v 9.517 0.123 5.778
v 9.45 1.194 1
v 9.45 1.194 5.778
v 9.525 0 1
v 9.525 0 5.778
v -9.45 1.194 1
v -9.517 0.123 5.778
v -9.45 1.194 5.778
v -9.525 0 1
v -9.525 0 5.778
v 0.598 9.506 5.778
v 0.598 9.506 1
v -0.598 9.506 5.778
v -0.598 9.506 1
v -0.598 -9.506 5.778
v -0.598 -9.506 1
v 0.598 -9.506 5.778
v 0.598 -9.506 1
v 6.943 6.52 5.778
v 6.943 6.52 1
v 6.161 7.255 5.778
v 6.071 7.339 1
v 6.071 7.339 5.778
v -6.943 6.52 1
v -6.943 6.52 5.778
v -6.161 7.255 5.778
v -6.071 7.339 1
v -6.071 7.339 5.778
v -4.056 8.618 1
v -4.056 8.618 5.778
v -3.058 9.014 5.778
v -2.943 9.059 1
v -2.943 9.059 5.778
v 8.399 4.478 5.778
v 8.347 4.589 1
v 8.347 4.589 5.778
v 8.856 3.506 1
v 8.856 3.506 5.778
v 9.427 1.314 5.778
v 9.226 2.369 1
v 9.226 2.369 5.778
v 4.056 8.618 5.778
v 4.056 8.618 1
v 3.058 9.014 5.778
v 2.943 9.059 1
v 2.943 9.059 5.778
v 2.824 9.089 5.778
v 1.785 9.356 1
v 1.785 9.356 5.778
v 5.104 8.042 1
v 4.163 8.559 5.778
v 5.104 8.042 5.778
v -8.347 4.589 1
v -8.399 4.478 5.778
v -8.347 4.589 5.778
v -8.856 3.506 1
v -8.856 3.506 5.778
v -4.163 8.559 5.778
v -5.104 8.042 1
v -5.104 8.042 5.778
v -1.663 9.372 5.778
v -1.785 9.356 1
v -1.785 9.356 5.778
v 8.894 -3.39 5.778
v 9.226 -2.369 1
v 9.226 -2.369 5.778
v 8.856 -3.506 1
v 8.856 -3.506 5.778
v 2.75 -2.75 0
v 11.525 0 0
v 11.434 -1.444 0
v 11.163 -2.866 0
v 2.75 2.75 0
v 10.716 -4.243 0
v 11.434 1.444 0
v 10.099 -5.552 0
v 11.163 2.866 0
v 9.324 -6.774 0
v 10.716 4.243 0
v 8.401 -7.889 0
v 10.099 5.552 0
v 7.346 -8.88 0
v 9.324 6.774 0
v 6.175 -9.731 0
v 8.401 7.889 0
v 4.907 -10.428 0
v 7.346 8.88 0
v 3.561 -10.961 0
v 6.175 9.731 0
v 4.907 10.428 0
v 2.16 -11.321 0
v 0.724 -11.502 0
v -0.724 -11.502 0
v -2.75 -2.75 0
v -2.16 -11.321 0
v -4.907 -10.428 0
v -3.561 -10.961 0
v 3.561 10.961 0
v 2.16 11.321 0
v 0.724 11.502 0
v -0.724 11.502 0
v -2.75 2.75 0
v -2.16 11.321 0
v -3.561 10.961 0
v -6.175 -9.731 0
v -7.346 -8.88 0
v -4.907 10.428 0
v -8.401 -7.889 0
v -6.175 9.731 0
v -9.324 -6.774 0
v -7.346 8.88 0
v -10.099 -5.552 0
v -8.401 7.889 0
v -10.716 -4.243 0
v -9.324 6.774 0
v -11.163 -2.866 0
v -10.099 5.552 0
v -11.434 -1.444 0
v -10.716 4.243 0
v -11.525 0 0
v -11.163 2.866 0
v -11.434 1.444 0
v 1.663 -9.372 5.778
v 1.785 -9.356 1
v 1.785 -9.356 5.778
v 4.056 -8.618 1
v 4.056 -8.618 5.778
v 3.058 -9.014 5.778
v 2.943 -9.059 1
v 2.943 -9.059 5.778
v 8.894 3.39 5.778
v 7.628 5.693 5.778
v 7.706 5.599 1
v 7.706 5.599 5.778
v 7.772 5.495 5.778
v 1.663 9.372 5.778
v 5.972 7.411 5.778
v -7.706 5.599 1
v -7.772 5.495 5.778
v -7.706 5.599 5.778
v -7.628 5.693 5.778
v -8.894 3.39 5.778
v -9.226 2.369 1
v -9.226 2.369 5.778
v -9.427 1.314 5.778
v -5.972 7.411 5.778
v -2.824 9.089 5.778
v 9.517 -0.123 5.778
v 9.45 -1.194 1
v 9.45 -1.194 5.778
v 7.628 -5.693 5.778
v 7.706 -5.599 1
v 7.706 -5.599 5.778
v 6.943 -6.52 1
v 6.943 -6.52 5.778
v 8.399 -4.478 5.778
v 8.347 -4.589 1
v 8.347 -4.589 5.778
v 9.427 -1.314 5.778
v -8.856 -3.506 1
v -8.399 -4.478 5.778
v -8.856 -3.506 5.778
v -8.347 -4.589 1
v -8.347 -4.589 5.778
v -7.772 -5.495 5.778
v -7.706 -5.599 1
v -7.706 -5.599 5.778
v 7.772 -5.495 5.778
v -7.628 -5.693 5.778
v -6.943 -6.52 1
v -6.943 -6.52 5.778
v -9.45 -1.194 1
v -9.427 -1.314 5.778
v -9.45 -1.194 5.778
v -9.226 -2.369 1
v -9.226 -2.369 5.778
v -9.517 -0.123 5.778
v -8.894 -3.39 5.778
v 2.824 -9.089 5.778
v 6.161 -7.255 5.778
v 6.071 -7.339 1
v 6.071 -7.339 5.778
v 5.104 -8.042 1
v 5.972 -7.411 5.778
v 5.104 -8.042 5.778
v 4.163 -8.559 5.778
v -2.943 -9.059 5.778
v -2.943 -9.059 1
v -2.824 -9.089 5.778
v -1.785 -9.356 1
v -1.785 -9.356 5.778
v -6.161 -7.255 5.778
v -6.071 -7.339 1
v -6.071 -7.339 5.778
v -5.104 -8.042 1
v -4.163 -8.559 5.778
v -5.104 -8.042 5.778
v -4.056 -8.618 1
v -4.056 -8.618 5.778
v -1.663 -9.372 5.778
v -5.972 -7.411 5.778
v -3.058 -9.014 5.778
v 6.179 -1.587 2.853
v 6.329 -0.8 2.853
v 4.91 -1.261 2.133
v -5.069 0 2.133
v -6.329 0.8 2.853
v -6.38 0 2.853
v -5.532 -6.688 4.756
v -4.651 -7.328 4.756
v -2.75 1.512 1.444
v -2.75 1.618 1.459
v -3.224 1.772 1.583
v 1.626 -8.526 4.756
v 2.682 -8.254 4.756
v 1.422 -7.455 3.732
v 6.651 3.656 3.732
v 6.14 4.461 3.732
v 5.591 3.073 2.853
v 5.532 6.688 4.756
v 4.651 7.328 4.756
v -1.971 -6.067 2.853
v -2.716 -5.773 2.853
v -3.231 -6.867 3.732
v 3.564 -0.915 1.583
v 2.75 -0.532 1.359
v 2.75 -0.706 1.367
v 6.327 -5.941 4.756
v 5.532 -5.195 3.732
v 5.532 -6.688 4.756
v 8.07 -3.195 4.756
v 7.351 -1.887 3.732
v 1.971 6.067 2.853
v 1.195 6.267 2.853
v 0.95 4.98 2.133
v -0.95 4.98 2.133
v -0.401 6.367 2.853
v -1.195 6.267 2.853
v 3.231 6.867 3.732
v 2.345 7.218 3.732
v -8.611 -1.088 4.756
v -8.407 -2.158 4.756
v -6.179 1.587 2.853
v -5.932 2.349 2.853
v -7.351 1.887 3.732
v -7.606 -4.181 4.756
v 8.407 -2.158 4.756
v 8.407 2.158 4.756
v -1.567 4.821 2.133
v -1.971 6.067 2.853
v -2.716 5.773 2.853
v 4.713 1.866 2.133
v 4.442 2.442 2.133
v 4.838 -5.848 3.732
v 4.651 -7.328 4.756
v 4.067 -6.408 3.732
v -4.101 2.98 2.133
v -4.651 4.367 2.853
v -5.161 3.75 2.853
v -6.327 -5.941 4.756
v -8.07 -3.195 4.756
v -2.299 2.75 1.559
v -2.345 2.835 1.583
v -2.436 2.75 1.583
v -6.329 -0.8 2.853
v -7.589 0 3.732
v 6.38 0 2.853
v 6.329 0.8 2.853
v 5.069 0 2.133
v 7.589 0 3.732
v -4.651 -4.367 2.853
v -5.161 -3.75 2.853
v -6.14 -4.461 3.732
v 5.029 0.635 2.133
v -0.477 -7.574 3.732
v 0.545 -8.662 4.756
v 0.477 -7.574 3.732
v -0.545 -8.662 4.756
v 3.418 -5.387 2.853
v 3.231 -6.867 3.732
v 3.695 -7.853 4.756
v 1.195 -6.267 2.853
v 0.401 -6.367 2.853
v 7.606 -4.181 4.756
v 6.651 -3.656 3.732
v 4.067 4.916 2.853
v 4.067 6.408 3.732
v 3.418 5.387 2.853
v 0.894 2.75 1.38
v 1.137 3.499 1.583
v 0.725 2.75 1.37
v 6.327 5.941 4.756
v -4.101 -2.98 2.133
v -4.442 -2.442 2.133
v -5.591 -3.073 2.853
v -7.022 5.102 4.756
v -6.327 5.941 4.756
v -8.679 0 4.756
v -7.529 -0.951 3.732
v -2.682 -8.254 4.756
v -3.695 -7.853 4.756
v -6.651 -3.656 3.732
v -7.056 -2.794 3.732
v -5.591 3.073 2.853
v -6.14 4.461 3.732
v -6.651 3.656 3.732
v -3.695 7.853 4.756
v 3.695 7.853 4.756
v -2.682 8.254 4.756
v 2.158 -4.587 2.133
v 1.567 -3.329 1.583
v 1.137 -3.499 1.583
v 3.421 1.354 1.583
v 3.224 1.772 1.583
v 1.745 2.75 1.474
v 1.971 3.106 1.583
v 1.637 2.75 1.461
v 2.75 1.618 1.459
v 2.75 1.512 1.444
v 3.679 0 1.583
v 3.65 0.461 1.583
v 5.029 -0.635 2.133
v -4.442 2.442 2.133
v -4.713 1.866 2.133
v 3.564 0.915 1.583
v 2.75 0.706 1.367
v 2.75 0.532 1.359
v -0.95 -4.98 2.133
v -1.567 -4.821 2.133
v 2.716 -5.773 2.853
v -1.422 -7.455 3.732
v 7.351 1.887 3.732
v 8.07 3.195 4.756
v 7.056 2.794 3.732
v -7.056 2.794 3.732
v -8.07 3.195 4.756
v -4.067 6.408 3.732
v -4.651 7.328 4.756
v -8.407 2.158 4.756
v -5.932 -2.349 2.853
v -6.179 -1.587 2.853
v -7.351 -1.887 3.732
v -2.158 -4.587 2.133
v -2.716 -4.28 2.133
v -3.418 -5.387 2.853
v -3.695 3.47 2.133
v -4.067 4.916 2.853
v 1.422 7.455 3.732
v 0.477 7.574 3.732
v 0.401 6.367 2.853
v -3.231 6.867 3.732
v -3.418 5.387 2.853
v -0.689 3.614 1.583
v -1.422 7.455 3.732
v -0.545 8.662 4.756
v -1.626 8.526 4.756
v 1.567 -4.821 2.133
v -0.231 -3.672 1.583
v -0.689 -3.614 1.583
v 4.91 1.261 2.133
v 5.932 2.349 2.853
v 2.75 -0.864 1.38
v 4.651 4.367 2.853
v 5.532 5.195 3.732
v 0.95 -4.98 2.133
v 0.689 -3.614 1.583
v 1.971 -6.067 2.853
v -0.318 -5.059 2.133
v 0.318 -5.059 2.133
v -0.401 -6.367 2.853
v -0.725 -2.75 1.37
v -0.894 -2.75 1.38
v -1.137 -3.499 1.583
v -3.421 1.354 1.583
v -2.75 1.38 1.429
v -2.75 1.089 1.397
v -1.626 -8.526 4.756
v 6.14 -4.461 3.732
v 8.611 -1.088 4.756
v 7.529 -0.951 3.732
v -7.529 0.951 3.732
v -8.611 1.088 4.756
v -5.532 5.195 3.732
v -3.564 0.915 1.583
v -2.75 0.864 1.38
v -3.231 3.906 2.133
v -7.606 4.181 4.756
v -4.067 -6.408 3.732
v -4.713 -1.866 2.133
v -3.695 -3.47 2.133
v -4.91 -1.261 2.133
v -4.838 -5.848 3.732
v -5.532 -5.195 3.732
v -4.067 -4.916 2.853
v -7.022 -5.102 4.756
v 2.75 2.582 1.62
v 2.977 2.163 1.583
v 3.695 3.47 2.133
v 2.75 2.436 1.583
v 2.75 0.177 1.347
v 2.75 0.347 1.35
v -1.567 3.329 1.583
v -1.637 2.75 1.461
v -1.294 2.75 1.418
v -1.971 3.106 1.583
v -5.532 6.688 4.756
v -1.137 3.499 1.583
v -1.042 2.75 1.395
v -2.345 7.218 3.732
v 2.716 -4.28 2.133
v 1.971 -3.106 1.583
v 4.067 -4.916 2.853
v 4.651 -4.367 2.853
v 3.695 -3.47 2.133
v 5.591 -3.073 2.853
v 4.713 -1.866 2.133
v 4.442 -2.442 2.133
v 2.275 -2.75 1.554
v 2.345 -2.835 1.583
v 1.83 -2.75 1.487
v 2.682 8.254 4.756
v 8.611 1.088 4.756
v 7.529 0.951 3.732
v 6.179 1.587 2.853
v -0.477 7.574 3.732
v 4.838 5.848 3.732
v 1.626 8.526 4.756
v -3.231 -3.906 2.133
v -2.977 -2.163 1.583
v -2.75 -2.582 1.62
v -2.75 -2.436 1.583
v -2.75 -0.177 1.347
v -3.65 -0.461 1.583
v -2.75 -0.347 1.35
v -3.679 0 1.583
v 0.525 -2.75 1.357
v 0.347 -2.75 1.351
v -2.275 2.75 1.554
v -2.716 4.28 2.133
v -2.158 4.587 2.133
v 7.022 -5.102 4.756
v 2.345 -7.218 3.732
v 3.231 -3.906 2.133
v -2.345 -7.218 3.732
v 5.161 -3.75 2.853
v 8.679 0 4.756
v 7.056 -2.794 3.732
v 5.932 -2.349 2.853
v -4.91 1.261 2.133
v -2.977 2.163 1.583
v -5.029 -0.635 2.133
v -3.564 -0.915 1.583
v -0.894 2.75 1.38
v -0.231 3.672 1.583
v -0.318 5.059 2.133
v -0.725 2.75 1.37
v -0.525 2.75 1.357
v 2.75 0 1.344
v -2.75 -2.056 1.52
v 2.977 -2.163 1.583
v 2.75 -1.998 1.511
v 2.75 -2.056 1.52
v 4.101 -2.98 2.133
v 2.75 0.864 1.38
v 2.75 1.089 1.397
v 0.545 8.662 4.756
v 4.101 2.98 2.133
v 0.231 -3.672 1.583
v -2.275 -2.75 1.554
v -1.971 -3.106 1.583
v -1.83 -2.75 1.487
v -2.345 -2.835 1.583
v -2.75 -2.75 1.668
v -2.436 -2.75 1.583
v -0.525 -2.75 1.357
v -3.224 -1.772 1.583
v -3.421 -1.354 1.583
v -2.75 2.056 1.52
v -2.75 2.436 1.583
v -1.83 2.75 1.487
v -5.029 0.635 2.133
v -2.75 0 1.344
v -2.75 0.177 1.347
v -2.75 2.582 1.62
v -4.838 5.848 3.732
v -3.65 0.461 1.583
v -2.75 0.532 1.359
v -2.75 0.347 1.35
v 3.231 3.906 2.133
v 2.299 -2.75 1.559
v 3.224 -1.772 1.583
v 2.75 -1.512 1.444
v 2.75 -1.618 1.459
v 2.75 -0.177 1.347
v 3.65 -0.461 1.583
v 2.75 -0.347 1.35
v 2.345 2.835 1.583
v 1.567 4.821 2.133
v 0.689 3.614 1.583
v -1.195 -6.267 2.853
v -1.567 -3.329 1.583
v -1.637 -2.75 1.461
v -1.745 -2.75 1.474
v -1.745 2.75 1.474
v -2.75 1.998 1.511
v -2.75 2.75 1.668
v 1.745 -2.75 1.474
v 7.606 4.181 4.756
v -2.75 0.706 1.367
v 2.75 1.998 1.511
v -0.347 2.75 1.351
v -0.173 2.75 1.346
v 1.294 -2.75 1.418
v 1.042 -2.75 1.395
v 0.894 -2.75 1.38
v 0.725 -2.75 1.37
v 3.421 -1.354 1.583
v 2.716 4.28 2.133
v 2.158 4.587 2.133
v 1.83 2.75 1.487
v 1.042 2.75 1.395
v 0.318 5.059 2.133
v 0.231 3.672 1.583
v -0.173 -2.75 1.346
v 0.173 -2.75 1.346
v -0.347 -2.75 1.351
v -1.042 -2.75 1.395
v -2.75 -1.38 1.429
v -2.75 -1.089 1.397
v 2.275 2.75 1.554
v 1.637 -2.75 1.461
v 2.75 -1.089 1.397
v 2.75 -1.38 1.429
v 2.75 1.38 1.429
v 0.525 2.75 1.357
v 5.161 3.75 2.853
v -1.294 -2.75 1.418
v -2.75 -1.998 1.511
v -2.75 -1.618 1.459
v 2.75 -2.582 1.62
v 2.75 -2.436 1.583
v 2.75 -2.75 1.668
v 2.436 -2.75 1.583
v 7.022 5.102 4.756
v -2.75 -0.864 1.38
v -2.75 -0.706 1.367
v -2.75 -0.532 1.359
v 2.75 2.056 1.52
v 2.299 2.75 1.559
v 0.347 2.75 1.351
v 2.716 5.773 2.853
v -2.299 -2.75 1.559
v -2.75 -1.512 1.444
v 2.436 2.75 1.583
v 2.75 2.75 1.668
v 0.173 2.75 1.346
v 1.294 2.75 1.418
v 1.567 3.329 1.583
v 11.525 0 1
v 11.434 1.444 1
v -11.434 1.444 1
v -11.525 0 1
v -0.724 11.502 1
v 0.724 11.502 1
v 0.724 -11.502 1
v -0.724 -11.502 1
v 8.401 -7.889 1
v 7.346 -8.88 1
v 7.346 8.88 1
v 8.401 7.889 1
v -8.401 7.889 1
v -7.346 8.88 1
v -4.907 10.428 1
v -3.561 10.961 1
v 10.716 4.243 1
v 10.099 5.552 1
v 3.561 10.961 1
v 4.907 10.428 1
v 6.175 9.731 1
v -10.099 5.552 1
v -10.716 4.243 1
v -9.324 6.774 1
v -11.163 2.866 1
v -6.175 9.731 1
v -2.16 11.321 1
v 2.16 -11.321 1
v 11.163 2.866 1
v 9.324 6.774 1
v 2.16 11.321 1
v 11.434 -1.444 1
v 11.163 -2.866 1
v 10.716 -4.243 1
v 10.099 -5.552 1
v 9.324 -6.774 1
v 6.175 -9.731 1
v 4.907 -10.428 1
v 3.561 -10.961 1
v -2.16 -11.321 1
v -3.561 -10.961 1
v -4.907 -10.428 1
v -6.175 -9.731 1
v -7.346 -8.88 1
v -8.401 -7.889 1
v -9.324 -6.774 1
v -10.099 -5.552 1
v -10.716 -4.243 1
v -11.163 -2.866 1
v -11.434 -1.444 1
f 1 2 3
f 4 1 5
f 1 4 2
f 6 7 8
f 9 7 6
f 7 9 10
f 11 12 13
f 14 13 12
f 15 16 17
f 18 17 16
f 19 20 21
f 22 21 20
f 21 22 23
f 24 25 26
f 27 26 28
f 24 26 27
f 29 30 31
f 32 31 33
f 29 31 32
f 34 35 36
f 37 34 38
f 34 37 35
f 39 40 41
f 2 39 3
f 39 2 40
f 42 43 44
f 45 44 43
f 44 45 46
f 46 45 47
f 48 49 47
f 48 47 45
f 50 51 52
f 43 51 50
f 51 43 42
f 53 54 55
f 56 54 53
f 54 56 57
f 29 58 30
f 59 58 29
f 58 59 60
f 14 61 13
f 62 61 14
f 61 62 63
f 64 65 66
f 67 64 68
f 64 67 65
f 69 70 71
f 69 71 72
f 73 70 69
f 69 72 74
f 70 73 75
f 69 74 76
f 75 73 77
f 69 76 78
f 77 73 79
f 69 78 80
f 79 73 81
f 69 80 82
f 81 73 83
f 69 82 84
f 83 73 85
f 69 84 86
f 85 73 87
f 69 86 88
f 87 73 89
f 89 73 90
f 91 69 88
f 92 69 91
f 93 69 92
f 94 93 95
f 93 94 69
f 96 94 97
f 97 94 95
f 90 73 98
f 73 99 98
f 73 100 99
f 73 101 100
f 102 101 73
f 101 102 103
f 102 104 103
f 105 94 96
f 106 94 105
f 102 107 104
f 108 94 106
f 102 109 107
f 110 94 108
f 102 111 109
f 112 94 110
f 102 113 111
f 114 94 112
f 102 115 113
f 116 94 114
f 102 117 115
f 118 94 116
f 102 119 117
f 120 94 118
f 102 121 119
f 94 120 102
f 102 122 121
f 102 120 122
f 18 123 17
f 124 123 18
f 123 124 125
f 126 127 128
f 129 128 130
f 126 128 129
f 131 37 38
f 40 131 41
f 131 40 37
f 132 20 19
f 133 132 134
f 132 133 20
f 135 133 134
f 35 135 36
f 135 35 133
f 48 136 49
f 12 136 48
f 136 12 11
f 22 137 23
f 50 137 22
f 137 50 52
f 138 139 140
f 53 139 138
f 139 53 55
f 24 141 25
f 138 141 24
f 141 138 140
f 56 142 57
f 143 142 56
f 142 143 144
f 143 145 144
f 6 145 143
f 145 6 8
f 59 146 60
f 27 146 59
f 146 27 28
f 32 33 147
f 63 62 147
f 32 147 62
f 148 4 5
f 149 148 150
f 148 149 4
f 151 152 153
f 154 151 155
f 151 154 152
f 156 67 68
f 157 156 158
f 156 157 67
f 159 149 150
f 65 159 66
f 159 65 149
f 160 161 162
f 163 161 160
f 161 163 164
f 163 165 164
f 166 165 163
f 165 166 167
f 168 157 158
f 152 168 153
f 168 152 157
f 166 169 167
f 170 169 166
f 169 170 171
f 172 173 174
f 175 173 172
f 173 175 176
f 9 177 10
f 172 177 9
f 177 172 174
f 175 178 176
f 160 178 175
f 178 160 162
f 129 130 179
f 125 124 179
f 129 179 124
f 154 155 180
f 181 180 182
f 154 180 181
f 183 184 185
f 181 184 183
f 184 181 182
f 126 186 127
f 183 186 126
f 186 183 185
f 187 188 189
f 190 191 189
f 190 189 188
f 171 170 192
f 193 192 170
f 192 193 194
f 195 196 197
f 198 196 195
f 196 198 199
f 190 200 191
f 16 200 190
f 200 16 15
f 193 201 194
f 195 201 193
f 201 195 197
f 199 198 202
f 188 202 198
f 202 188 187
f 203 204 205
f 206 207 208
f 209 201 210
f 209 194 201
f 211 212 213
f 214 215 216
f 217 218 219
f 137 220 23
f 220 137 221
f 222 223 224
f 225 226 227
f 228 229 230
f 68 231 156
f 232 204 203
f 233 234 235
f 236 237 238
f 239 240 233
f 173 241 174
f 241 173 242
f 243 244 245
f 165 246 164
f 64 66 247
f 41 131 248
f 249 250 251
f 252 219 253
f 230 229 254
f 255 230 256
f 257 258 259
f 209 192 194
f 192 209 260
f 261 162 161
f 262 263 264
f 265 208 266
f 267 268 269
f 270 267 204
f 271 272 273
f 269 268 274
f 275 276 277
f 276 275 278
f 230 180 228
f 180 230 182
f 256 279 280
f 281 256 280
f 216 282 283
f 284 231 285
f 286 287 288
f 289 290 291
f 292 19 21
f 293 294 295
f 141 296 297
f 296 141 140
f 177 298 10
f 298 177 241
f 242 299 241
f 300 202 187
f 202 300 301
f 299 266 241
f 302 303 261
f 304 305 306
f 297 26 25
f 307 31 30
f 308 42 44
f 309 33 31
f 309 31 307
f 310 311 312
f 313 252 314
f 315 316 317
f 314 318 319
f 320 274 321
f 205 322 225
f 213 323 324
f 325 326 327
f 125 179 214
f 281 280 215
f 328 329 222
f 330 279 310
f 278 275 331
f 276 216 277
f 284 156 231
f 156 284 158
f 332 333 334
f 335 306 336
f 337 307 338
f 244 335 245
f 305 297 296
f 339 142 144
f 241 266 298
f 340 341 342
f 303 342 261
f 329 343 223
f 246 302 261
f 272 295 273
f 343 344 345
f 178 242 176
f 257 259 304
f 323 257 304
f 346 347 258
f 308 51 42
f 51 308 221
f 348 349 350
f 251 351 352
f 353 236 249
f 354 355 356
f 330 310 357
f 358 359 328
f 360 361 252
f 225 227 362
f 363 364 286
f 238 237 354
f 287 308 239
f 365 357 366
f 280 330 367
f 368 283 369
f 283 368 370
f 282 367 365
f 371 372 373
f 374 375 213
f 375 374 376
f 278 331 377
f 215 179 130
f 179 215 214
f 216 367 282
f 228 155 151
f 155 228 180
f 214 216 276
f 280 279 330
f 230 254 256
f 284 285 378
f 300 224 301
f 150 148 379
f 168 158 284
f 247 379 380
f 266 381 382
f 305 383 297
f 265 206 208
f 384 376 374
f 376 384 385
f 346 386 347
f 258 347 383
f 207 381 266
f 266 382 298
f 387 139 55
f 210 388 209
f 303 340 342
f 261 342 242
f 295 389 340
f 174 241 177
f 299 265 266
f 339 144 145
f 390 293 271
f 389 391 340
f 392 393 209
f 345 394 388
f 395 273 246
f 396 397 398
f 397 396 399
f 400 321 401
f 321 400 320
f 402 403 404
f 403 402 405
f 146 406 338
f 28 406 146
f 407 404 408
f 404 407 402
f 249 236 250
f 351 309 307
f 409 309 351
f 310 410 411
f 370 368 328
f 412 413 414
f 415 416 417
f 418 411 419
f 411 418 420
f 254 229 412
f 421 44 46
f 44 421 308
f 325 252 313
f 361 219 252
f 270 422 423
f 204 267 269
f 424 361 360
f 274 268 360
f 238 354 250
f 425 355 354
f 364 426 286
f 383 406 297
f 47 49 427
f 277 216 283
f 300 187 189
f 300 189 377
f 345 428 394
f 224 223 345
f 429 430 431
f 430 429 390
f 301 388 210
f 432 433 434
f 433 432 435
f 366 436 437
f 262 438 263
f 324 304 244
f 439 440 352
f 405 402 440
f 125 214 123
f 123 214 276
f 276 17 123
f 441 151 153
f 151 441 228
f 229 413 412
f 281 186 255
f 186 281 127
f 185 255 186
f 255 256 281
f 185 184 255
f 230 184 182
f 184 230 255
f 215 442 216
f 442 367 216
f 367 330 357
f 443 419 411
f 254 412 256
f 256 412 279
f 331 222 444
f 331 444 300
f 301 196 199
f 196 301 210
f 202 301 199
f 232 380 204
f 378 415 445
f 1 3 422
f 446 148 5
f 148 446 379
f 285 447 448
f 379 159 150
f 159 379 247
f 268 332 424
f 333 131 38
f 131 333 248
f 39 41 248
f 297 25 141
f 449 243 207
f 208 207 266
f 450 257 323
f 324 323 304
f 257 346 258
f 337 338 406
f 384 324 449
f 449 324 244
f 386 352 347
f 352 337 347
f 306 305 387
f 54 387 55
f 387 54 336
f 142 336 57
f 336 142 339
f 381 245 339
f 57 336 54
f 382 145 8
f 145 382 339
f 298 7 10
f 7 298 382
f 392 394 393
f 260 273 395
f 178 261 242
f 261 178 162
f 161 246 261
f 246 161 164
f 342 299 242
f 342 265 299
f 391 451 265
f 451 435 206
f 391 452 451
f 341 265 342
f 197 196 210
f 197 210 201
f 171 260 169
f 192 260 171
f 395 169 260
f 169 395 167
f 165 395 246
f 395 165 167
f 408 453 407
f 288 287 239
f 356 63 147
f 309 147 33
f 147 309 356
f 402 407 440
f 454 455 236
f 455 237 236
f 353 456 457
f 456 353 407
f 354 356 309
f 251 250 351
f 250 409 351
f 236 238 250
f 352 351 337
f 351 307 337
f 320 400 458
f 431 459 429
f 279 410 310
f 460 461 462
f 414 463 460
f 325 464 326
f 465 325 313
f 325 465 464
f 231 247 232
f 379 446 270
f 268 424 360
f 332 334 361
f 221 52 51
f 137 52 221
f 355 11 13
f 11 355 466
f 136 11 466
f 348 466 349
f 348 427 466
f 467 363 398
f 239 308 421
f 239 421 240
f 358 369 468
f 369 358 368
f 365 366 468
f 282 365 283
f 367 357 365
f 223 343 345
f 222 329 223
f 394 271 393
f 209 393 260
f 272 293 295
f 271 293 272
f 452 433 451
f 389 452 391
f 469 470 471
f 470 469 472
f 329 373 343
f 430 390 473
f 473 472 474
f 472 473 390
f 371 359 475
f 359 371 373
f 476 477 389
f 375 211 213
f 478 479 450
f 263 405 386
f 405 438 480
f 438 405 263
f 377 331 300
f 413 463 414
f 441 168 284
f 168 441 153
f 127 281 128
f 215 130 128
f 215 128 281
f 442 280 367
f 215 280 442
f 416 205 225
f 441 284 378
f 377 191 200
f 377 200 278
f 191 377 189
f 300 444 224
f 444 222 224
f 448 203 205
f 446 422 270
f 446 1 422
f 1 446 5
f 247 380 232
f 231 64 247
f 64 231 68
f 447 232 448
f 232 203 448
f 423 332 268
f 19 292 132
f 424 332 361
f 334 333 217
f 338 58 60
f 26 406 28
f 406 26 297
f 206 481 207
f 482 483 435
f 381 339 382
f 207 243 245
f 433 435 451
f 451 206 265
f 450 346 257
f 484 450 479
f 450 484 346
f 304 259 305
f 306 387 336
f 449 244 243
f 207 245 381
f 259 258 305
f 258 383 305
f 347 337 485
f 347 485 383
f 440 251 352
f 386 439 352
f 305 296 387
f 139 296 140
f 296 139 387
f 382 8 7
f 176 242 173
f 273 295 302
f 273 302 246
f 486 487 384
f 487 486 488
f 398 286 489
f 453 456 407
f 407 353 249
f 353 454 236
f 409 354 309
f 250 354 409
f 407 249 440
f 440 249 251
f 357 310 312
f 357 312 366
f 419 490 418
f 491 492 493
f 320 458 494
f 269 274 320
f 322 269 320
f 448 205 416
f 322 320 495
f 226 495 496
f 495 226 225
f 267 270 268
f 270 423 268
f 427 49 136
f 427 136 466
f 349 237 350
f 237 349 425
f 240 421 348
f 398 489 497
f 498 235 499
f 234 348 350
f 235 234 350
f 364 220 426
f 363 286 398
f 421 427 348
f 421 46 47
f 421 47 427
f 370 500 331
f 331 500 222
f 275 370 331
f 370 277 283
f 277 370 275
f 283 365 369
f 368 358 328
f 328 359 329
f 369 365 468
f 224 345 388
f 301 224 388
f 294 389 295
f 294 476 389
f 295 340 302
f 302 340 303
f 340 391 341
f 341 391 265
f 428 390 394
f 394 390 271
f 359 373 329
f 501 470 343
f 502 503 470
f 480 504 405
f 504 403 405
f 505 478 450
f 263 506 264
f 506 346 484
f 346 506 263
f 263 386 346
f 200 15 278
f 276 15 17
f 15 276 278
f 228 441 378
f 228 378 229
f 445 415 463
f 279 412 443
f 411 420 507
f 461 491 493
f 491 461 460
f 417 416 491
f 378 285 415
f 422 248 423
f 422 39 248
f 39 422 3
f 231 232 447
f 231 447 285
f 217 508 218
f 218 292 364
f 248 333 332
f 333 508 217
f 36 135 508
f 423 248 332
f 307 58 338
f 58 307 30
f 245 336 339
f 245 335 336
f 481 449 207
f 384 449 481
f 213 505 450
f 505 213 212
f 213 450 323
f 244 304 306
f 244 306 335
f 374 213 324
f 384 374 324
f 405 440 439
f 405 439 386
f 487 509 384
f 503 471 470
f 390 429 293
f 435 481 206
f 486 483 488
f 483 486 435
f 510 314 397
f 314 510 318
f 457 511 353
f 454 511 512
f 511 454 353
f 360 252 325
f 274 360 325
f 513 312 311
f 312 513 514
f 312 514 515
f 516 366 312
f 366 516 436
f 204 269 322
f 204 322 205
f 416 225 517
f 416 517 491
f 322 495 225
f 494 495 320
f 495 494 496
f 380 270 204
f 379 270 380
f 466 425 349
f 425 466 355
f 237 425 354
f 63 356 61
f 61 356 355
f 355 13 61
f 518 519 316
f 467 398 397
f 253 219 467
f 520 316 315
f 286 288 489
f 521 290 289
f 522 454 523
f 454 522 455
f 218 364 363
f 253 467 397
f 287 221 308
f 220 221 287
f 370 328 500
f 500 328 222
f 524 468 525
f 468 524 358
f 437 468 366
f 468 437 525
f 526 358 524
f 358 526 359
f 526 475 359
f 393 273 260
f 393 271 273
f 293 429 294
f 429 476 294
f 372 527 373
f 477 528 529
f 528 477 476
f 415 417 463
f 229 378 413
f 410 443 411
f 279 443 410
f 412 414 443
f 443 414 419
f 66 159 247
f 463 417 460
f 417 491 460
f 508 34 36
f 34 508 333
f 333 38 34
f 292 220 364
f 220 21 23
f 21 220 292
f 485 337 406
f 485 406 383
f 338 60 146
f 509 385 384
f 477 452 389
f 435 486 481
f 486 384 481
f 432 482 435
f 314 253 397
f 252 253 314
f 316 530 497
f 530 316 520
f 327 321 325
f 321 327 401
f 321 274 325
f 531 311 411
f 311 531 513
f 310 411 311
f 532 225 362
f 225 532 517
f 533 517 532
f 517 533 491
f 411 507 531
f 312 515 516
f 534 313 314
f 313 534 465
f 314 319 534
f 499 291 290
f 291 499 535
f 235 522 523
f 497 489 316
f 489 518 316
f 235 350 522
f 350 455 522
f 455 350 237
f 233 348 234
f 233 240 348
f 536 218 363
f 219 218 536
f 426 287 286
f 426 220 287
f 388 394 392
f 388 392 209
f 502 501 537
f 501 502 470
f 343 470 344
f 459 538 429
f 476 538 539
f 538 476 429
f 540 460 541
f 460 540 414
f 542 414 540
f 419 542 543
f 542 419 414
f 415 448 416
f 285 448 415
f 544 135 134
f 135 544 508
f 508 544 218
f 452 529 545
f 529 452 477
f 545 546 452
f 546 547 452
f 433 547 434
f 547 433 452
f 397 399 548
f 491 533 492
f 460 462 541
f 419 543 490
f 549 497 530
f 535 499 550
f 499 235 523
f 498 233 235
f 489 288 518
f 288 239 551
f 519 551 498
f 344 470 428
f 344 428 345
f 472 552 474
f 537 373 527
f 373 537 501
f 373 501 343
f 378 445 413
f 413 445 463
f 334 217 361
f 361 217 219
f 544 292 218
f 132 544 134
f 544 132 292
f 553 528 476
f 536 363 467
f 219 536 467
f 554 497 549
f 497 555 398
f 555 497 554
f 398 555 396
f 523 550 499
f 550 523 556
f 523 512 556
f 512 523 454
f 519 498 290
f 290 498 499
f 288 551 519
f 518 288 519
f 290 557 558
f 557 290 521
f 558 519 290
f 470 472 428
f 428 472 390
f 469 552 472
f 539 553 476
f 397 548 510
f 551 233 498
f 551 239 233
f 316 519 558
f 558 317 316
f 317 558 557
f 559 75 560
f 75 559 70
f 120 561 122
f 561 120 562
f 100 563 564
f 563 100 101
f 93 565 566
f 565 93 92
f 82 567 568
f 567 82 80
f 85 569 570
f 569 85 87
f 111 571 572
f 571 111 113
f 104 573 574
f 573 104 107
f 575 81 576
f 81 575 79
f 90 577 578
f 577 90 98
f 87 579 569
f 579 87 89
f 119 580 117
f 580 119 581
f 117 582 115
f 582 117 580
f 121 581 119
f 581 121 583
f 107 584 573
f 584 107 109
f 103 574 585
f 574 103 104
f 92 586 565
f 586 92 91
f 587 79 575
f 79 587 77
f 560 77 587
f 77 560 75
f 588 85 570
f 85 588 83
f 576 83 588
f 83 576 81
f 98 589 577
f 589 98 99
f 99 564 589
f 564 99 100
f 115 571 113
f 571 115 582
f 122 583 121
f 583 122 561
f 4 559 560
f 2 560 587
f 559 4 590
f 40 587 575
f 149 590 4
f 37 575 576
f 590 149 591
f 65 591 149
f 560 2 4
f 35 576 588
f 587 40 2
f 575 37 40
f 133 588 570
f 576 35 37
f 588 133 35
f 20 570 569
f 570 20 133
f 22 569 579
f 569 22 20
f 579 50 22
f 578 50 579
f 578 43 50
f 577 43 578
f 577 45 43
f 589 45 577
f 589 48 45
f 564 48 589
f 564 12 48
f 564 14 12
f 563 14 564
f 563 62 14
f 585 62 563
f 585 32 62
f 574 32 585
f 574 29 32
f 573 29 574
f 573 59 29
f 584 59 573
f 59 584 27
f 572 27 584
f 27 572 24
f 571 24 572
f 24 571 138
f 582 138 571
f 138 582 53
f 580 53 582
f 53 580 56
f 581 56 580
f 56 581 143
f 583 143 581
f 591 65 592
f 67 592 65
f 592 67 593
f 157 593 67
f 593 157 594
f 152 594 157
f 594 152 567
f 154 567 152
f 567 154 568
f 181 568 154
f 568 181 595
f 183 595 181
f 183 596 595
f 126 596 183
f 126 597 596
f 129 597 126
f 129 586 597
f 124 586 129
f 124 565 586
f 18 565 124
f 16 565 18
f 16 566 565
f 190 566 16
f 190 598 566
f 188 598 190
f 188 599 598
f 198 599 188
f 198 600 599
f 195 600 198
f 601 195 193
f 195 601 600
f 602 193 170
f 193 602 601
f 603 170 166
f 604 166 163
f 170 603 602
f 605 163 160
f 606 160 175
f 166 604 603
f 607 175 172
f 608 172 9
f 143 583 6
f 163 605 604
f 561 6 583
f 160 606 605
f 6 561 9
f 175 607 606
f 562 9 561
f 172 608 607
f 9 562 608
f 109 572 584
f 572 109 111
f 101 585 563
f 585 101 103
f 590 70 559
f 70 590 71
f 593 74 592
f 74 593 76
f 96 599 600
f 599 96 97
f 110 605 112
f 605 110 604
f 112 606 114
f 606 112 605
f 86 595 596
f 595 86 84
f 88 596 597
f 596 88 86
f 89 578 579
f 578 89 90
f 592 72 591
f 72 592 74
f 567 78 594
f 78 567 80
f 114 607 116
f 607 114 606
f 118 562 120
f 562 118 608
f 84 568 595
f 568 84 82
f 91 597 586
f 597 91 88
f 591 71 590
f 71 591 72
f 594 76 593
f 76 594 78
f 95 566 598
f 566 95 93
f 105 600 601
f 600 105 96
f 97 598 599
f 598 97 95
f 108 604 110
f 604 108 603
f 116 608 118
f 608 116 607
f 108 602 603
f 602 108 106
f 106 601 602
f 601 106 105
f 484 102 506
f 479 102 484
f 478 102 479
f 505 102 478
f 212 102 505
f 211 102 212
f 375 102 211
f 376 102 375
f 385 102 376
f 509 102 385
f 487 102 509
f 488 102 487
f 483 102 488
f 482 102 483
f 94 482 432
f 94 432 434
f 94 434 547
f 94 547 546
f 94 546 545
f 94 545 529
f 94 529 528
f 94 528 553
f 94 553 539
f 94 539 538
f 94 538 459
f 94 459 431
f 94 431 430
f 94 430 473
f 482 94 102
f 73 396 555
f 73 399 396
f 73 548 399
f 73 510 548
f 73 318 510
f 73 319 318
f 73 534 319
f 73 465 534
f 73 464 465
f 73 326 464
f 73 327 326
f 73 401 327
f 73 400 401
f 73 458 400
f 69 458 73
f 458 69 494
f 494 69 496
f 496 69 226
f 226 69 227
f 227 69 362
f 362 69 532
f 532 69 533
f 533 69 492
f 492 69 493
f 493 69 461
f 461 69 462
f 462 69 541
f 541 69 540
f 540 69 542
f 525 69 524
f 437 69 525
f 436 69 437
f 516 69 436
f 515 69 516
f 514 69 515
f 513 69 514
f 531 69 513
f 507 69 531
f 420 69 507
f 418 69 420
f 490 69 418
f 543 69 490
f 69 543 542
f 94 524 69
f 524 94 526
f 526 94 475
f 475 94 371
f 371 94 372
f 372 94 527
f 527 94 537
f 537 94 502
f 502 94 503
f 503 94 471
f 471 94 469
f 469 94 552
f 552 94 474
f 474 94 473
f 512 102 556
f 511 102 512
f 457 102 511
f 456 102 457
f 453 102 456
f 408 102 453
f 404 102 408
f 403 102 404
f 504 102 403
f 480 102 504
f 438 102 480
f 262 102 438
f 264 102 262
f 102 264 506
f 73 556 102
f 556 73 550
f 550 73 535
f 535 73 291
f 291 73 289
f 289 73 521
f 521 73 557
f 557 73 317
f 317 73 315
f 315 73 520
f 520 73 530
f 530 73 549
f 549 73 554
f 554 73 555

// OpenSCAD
r=.75*25.4/2;
$fn=50;

R=5*r/4;
difference() {
union() {
difference() {
  translate([0,0,0.25*25.4/2])  
    cylinder(r=r,h=0.25*25.4,center=true);
  translate([0,0,R+1])
    sphere(r=R,center=true);
}
translate([0,0,0.5])
  cylinder(r=r+2,h=1,center=true);
}
cube([5.5,5.5,5.5],center=true);
}
